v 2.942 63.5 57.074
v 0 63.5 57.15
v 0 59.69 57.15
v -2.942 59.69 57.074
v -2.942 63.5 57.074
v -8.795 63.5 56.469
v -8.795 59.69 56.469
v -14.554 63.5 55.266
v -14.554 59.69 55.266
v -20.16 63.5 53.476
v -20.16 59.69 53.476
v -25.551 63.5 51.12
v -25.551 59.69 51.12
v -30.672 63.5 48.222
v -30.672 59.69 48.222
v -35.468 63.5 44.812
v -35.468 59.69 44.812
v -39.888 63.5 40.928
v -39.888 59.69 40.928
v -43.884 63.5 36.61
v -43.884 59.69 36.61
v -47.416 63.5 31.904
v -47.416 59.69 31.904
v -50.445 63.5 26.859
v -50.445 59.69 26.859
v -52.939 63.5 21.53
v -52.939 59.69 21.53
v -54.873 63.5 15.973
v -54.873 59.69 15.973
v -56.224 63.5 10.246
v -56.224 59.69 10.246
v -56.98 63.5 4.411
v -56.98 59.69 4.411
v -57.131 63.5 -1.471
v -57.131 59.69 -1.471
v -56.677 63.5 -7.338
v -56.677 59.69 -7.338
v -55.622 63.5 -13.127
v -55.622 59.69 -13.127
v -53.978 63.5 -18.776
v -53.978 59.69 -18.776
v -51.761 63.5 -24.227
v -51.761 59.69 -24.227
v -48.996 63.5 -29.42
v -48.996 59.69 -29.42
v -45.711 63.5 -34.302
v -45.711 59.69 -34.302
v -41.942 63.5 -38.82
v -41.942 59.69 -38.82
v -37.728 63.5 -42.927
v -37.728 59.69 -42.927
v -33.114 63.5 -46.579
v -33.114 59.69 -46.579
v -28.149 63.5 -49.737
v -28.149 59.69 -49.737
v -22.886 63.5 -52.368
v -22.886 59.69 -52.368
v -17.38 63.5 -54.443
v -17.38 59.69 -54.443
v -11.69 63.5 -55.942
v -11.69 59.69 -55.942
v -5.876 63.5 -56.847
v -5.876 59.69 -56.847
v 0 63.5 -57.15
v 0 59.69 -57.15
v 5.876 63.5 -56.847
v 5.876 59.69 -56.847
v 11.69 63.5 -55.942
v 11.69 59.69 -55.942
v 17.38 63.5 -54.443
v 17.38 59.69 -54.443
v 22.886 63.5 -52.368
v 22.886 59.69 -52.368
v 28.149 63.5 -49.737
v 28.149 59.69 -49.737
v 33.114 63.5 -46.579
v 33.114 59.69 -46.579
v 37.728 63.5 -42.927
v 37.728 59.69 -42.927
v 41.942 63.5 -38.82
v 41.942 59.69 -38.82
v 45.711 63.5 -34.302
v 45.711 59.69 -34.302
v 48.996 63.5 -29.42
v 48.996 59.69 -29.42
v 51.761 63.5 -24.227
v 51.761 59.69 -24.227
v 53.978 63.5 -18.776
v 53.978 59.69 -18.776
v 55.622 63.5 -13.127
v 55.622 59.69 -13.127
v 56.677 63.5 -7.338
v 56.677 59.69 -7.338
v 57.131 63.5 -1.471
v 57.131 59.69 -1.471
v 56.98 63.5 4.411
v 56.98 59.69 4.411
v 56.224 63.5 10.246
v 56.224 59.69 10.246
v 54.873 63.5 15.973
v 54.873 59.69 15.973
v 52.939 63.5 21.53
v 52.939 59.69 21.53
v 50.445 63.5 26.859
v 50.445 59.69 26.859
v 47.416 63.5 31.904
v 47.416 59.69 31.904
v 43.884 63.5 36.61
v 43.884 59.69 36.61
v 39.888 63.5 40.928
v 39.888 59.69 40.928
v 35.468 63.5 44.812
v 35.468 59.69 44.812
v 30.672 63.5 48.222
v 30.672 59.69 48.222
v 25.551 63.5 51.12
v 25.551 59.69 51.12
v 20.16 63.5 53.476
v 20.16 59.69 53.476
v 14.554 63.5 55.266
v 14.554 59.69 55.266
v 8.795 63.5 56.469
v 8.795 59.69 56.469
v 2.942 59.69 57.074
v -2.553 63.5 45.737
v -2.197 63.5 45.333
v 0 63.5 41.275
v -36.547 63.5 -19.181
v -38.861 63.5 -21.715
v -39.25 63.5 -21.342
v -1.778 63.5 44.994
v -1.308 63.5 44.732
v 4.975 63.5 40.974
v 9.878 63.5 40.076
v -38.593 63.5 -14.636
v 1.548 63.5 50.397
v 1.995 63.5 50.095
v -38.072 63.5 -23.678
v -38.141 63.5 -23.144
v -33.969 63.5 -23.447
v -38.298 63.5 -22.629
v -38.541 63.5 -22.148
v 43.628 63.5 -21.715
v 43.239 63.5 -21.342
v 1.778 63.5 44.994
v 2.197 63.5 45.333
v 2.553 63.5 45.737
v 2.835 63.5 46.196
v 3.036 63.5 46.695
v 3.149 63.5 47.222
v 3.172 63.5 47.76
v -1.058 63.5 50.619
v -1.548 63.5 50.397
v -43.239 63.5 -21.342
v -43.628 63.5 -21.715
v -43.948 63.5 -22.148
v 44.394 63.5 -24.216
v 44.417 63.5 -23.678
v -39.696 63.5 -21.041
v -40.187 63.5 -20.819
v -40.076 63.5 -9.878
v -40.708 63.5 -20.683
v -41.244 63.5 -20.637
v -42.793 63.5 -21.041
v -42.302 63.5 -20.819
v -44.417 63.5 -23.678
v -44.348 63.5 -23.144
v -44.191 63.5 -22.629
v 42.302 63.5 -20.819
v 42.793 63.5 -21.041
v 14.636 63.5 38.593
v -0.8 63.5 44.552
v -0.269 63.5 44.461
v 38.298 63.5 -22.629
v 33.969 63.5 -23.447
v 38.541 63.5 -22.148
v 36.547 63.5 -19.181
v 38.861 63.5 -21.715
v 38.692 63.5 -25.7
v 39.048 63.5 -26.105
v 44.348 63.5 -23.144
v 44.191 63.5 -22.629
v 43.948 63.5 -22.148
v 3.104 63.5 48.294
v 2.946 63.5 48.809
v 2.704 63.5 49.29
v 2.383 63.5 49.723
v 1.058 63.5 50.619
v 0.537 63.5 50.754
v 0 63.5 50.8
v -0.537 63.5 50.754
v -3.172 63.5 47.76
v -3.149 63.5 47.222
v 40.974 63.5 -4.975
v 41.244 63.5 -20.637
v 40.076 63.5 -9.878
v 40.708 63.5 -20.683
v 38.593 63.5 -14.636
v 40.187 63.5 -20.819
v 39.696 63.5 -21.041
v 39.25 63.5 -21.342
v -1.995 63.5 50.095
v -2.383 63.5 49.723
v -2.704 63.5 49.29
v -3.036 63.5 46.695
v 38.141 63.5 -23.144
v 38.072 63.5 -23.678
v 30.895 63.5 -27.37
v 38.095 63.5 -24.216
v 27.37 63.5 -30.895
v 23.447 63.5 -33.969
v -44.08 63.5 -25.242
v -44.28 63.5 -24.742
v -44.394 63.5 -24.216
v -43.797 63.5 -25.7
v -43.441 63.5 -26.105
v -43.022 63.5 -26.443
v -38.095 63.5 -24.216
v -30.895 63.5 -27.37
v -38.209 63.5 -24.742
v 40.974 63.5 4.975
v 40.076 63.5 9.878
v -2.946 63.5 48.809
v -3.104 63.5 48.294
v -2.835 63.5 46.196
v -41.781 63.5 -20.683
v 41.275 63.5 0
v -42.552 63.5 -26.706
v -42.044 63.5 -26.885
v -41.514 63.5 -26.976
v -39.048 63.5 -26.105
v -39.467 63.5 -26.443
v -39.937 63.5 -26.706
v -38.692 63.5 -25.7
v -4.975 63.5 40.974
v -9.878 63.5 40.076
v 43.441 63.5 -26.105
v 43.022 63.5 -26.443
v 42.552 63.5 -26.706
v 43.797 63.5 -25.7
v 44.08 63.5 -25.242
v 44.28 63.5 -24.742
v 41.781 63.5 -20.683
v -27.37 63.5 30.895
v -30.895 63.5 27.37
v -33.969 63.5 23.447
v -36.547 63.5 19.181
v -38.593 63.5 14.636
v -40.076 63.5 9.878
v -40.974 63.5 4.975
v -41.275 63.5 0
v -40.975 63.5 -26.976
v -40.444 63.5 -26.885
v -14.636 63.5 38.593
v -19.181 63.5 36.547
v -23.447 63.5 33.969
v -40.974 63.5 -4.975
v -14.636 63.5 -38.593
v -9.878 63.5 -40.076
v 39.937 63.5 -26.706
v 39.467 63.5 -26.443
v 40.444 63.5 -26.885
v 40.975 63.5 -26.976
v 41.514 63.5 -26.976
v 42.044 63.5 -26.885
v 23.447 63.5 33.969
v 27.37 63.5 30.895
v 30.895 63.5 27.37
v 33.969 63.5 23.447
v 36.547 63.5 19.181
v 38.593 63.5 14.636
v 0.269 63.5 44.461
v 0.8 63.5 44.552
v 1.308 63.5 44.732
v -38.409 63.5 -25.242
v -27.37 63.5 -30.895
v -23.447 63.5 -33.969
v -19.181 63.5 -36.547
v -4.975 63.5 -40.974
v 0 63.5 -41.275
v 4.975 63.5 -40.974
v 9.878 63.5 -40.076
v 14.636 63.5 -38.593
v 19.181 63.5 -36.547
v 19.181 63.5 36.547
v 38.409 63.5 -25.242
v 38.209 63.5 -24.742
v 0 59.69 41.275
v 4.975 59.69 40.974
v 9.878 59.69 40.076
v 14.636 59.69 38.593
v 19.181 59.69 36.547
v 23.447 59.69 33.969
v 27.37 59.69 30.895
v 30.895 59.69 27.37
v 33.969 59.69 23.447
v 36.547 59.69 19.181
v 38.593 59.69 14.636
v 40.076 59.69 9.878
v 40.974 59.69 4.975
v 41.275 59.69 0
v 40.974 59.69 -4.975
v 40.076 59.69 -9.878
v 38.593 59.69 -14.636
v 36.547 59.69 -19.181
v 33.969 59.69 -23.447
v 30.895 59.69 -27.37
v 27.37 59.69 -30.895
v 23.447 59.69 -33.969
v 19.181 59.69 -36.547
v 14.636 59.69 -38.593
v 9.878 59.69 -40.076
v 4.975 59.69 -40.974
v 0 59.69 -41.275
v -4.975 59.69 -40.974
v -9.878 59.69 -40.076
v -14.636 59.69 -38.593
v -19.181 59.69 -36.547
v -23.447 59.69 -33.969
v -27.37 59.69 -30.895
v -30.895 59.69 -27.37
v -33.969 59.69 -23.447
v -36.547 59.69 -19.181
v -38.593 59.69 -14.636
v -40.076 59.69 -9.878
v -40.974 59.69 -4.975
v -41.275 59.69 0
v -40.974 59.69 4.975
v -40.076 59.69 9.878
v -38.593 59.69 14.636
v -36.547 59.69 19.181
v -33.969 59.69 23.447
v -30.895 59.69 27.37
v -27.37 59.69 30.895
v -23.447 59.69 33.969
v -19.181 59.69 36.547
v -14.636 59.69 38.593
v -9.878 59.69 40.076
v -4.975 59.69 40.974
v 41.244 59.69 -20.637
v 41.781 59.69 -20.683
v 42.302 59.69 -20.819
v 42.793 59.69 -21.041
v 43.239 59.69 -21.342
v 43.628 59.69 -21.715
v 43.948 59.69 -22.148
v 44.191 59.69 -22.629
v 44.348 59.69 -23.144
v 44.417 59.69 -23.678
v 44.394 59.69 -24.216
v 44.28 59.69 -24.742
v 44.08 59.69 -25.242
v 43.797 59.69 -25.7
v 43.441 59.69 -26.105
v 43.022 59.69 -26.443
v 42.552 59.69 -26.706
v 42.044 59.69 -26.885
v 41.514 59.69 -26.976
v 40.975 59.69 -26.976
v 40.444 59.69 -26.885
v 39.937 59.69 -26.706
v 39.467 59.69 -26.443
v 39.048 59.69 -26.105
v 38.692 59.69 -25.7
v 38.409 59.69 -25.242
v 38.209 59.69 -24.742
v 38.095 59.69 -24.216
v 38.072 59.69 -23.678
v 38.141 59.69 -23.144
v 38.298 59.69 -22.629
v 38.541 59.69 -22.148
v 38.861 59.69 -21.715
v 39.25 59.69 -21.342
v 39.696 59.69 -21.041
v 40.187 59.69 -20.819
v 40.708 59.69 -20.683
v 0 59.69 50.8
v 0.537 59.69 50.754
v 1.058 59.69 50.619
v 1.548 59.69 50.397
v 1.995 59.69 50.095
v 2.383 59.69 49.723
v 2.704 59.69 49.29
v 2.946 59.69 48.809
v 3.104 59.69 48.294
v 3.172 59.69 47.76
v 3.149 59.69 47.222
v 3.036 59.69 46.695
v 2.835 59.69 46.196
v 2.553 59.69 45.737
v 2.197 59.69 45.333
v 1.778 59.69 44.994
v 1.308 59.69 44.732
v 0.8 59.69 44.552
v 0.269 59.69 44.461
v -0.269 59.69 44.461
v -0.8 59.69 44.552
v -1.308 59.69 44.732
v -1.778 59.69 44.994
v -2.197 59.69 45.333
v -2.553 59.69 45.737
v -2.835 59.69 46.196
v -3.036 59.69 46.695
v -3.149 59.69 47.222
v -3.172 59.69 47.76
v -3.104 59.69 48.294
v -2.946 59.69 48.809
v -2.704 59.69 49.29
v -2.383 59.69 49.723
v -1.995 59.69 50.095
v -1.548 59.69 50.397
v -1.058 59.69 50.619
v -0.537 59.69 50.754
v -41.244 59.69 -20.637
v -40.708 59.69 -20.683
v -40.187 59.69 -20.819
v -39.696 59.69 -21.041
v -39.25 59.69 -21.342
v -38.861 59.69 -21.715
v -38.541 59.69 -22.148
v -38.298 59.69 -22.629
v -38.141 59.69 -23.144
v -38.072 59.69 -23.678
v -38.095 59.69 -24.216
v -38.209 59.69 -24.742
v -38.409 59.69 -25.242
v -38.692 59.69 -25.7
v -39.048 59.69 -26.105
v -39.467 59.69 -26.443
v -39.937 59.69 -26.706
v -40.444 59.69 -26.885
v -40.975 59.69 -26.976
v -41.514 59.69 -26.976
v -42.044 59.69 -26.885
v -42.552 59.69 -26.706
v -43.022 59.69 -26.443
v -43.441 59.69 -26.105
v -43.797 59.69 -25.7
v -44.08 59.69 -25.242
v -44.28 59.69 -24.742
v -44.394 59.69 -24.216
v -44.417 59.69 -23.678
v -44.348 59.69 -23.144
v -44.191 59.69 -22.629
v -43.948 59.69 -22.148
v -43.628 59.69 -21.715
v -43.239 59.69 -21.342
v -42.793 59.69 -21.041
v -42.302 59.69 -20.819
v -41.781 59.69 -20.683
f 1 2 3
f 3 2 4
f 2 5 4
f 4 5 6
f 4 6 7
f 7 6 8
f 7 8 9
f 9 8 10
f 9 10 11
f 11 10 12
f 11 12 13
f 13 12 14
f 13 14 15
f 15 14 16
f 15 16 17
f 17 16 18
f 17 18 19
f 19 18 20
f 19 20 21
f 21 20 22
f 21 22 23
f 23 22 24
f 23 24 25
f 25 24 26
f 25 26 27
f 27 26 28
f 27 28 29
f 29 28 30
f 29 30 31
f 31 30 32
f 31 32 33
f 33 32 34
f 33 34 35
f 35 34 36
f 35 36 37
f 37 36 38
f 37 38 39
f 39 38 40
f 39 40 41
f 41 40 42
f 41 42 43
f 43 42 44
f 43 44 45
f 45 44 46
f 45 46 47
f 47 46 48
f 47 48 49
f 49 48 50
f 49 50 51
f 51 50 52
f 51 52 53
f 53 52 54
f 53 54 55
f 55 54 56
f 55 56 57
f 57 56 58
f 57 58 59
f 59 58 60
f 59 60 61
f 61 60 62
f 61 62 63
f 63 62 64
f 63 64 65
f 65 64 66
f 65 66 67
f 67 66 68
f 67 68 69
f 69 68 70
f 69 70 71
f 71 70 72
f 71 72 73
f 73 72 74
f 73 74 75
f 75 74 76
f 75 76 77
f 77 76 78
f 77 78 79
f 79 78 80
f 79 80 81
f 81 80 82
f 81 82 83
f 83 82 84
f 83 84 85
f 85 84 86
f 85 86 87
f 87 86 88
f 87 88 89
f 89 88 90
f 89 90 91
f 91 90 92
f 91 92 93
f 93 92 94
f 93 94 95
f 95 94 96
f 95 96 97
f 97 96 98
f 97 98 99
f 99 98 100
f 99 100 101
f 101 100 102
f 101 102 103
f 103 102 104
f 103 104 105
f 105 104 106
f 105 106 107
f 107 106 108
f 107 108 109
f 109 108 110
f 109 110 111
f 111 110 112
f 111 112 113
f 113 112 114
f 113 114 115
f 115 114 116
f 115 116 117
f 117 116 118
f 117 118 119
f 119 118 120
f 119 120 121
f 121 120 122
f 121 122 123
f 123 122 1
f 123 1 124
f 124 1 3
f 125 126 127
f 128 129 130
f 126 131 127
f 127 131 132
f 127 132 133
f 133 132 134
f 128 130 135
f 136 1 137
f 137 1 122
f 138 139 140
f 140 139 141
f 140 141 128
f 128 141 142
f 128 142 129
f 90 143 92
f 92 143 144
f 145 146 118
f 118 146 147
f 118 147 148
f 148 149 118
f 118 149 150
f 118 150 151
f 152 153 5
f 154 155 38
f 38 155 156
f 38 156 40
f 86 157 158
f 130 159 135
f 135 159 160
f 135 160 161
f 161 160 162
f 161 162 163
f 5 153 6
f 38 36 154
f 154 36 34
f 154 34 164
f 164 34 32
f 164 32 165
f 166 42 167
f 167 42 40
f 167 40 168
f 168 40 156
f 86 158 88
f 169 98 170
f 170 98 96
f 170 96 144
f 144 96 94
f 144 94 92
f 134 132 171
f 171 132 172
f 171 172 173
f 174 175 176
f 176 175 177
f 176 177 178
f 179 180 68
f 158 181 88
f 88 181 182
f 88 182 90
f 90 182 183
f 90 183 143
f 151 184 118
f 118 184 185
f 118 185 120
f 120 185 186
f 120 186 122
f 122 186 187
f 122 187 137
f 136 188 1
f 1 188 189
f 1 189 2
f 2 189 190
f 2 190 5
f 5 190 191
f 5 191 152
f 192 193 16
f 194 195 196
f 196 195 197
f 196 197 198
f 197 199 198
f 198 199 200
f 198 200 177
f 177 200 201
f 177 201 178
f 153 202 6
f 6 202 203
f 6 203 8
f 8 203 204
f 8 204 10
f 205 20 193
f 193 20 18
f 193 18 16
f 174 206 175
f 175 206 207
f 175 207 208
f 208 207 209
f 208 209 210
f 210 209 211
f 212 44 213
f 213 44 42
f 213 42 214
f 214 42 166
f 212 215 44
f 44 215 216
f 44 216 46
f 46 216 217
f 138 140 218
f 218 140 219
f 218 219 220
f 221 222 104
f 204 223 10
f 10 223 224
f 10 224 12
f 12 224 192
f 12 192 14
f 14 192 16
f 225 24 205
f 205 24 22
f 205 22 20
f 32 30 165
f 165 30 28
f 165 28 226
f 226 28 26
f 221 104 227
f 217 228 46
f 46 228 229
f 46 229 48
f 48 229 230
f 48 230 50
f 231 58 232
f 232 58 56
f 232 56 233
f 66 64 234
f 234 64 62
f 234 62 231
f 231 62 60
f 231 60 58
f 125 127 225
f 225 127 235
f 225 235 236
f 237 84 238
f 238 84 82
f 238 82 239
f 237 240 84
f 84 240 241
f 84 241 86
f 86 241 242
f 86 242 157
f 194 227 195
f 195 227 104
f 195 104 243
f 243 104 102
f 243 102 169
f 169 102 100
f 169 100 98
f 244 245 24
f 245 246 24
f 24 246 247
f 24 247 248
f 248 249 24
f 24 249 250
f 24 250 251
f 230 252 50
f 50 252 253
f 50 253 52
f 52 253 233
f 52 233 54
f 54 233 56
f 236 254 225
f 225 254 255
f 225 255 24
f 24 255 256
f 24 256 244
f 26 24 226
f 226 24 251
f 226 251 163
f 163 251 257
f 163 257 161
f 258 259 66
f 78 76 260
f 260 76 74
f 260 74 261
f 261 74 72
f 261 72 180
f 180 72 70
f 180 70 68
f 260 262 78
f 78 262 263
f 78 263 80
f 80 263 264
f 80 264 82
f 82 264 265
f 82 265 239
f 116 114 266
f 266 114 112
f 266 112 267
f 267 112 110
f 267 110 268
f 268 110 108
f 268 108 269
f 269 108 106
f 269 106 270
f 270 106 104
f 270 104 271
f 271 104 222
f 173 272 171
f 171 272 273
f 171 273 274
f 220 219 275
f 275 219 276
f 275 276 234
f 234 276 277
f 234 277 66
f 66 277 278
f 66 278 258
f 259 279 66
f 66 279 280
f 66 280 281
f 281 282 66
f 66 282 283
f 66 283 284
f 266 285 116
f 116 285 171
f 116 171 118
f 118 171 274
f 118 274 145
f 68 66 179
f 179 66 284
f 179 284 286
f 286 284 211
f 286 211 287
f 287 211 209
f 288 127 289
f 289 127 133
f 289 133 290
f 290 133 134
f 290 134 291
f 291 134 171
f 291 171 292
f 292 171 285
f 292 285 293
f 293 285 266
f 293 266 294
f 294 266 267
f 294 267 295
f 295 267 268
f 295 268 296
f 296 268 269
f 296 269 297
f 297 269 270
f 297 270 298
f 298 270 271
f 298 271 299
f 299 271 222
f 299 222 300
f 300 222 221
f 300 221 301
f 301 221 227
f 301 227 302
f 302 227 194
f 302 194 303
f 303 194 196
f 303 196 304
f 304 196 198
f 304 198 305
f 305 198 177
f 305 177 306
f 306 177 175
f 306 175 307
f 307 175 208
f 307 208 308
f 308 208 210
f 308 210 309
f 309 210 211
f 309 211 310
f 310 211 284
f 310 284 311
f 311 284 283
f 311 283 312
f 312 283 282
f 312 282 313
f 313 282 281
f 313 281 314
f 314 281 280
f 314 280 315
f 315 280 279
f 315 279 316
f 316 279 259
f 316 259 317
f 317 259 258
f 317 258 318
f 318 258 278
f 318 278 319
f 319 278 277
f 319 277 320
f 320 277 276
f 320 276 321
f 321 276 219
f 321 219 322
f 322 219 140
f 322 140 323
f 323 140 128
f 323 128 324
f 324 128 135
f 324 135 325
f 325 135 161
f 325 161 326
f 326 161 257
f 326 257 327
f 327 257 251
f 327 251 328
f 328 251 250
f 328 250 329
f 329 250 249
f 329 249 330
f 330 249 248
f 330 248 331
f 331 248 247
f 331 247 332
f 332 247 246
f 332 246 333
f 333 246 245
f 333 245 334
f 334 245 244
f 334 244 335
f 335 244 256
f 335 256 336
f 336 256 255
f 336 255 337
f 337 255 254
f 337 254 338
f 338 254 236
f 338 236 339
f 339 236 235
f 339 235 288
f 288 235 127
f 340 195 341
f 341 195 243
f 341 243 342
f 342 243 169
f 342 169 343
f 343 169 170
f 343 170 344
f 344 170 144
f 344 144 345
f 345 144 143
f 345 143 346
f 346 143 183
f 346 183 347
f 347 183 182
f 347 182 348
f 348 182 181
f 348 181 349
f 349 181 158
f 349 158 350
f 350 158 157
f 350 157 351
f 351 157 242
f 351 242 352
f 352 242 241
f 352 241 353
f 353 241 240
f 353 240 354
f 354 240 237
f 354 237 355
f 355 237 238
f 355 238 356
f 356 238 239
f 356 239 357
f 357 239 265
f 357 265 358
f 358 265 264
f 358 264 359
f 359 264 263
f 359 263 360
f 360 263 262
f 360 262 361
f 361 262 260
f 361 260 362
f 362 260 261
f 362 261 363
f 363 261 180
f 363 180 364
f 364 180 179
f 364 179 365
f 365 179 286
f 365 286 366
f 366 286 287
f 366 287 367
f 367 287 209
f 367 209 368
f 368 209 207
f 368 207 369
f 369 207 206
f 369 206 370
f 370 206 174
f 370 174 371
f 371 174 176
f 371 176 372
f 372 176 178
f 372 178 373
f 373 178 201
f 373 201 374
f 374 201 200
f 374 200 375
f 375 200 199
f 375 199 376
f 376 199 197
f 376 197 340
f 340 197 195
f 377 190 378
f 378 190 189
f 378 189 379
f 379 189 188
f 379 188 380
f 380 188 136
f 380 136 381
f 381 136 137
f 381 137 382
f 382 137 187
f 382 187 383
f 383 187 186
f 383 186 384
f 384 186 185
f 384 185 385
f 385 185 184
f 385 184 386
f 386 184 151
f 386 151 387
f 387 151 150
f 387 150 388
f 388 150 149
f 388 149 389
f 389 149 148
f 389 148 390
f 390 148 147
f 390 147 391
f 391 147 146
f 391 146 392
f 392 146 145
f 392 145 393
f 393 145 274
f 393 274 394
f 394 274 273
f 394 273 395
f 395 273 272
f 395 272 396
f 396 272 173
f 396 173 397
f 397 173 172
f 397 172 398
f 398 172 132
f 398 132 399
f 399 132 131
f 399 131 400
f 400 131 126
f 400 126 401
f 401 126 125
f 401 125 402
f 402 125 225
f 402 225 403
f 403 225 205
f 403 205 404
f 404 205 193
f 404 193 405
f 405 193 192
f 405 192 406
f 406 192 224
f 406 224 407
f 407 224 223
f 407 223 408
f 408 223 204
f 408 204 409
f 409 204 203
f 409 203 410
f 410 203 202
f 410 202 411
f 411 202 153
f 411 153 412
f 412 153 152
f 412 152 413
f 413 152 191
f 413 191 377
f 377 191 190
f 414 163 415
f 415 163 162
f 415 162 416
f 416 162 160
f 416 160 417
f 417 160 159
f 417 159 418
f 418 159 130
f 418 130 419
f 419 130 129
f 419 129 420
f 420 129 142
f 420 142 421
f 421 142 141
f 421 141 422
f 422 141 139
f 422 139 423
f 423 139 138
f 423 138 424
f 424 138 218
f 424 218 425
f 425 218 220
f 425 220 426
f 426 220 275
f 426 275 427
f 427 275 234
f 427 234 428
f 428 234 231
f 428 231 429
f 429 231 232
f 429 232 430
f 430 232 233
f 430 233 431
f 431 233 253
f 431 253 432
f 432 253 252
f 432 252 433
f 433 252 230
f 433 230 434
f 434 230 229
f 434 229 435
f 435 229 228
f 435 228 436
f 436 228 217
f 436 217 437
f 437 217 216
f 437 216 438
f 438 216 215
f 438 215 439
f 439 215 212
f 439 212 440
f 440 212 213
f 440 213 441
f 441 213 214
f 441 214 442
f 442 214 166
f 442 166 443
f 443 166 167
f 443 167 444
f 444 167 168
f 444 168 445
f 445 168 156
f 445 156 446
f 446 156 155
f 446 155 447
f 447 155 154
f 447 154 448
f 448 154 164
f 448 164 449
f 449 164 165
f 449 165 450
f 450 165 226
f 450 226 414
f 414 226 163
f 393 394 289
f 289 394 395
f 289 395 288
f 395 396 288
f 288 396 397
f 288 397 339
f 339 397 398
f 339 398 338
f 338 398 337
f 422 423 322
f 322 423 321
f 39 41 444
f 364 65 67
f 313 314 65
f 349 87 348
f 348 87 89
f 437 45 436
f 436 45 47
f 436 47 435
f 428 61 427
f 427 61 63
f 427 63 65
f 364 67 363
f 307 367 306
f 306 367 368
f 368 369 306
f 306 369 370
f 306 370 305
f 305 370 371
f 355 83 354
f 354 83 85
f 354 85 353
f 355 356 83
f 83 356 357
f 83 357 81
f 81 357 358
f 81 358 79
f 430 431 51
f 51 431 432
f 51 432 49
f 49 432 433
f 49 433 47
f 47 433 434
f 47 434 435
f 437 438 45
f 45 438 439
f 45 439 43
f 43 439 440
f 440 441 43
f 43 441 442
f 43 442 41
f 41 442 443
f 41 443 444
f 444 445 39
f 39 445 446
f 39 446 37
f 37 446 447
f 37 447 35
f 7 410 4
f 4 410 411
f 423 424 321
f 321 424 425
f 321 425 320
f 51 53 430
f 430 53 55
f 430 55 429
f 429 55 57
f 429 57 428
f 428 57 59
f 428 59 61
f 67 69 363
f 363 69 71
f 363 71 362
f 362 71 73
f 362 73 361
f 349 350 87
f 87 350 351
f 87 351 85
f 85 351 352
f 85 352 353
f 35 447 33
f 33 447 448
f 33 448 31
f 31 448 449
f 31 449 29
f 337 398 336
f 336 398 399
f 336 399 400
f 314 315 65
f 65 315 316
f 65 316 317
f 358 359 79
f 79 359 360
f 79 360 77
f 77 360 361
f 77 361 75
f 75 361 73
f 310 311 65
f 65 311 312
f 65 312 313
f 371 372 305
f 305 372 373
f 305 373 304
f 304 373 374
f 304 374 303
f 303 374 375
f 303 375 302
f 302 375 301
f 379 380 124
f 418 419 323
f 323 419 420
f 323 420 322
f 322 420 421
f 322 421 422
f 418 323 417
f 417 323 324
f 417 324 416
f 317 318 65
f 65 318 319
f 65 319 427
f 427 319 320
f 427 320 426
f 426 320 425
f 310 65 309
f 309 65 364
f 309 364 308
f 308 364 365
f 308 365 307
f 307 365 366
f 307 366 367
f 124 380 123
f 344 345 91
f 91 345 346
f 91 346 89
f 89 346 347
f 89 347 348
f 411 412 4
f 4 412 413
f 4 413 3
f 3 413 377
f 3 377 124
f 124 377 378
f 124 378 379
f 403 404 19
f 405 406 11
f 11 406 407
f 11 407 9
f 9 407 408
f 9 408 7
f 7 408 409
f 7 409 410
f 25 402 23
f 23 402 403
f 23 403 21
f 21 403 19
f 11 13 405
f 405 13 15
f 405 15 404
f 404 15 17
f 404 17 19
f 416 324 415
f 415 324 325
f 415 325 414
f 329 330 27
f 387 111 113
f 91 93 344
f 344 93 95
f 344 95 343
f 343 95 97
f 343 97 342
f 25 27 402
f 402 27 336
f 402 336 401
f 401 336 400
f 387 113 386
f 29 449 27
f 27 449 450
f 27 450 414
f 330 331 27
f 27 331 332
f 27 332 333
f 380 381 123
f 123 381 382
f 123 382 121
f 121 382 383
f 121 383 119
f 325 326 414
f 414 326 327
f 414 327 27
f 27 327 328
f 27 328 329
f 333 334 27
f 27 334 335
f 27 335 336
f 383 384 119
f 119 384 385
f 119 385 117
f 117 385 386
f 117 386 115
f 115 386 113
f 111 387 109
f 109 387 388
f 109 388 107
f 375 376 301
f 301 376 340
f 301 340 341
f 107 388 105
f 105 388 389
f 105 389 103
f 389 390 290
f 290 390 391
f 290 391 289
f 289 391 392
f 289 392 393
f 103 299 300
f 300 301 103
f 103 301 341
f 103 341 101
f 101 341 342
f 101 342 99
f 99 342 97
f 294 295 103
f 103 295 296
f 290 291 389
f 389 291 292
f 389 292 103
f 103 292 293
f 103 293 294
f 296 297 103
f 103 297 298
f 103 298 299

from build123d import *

# Parameters (mm, degrees)
SKETCH1_R                       = 57.15
BOSS_EXTRUDE1_DEPTH             = 63.5
SKETCH2_R                       = 41.275
CUT_EXTRUDE1_DEPTH              = 53.34
F_1_4_0_25_DIAMETER_HOLE4_D     = 6.35
F_1_4_0_25_DIAMETER_HOLE4_DEPTH = 25.4
F_1_4_0_25_DIAMETER_HOLE4_TIP   = 1.907732465
SKETCH7_R                       = 3.81
CUT_EXTRUDE2_DEPTH              = 103.783729257
F_4_0MM_DOWEL_HOLE1_D           = 4
SKETCH9_W                       = 7
SKETCH9_H                       = 7
CUT_EXTRUDE3_DEPTH              = 3.5
SKETCH12_W                      = 12.7
SKETCH12_H                      = 19.05
CUT_EXTRUDE4_DEPTH              = 4.7625
SKETCH13_R                      = 64.794556677
CUT_EXTRUDE5_DEPTH              = 59.69


with BuildPart() as part:
    # Sketch1 → Boss-Extrude1 (new body)
    with BuildSketch(Plane(origin=(0, 0, 0), x_dir=(1, 0, 0), z_dir=(0, 1, 0))):
        with Locations(Location((0, 0, 0), (0, 0, 270))):
            Circle(SKETCH1_R)
    extrude(amount=BOSS_EXTRUDE1_DEPTH)

    # Sketch2 → Cut-Extrude1 (cut)
    with BuildSketch(Plane(origin=(0, 63.5, 0), x_dir=(1, 0, 0), z_dir=(0, 1, 0))):
        with Locations(Location((0, 0, 0), (0, 0, 270))):
            Circle(SKETCH2_R)
    extrude(amount=-CUT_EXTRUDE1_DEPTH, mode=Mode.SUBTRACT)

    # 1/4 (0.25) Diameter Hole4
    with Locations(Plane(origin=(0, 63.5, 0), x_dir=(1, 0, 0), z_dir=(0, 1, 0))):
        with Locations((-41.244459855, 23.8125), (0, -47.625), (41.244459855, 23.8125)):
            Hole(F_1_4_0_25_DIAMETER_HOLE4_D / 2, depth=F_1_4_0_25_DIAMETER_HOLE4_DEPTH)
            with Locations((0, 0, -(F_1_4_0_25_DIAMETER_HOLE4_DEPTH + F_1_4_0_25_DIAMETER_HOLE4_TIP / 2))):  # 118° drill point
                Cone(0, F_1_4_0_25_DIAMETER_HOLE4_D / 2, F_1_4_0_25_DIAMETER_HOLE4_TIP, mode=Mode.SUBTRACT)

    # Sketch7 → Cut-Extrude2 (cut, through all)
    with BuildSketch(Plane.XY):
        with Locations((0, 15.24)):
            Circle(SKETCH7_R)
    extrude(amount=-CUT_EXTRUDE2_DEPTH, mode=Mode.SUBTRACT)

    # Ø4.0mm Dowel Hole1 (through all)
    with Locations(Plane(origin=(-5, 0, 15.938504039), x_dir=(0, 0, -1), z_dir=(0, -1, 0))):
        with Locations((0, 0), (0, 10), (49.5, 10), (49.5, 0)):
            Hole(F_4_0MM_DOWEL_HOLE1_D / 2)

    # Sketch9 → Cut-Extrude3 (cut)
    with BuildSketch(Plane.XZ):
        with Locations((-5, 15.938504039)):
            Rectangle(SKETCH9_W, SKETCH9_H)
        with Locations((5, 15.938504039)):
            Rectangle(SKETCH9_W, SKETCH9_H)
        with Locations((5, -33.561495961)):
            Rectangle(SKETCH9_W, SKETCH9_H)
        with Locations((-5, -33.561495961)):
            Rectangle(SKETCH9_W, SKETCH9_H)
    extrude(amount=-CUT_EXTRUDE3_DEPTH, mode=Mode.SUBTRACT)

    # Sketch12 → Cut-Extrude4 (cut)
    with BuildSketch(Plane(origin=(0, 50.8, 0), x_dir=(1, 0, 0), z_dir=(0, 1, 0))):
        Polygon((-54.992429237, 24.417545405), (-38.494645295, 14.892545405), (-35.319645295, 20.391806719), (-51.817429237, 29.916806719), align=None)
        Polygon((-51.817429237, 29.916806719), (-35.319645295, 20.391806719), (-32.144645295, 25.891068033), (-48.642429237, 35.416068033), align=None)
        Polygon((32.144645295, 25.891068033), (35.319645295, 20.391806719), (51.817429237, 29.916806719), (48.642429237, 35.416068033), align=None)
        Polygon((51.817429237, 29.916806719), (35.319645295, 20.391806719), (38.494645295, 14.892545405), (54.992429237, 24.417545405), align=None)
        with Locations((0, -50.308613437)):
            Rectangle(SKETCH12_W, SKETCH12_H)
    extrude(amount=CUT_EXTRUDE4_DEPTH, mode=Mode.SUBTRACT)

    # Sketch13 → Cut-Extrude5 (cut)
    with BuildSketch(Plane.XZ):
        Circle(SKETCH13_R)
    extrude(amount=-CUT_EXTRUDE5_DEPTH, mode=Mode.SUBTRACT)


solid = part.part
